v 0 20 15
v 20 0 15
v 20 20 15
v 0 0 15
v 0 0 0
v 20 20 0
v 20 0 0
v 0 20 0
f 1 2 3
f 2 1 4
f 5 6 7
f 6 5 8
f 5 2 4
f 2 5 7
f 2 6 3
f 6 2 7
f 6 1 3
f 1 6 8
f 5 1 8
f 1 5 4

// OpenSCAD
// =====================================================================
// 06 - CUBO PER IL FLUSSO (Flow)
// =====================================================================
// Da fare DOPO e-steps e temperatura.
//
// In Cura, solo per questa stampa:
//  - Wall Line Count = 2, Line Width = 0.42 (o quella che usi)
//  - Top Layers = 0, Infill = 0%, Bottom Layers = 3
//  - Ironing off, velocita' parete esterna = interna
//
// Misura lo spessore delle pareti col calibro in 8 punti (2 per lato,
// a meta' altezza, non sugli spigoli) e fai la media:
//     atteso = 2 * line_width             (0.84 con 0.42)
//     nuovo Flow % = Flow attuale * atteso / misurato
// Esempio: 100% * 0.84 / 0.87 = 96.6%  -> Flow 96.5 %
//
// Verifica visiva: stampa poi un cubo 20 mm pieno e guarda il top:
// deve essere chiuso, senza solchi (sotto) ne' creste (sopra).
// =====================================================================

lato    = 20;  // [15:1:40]
altezza = 15;  // [10:1:30]

cube([lato, lato, altezza]);
